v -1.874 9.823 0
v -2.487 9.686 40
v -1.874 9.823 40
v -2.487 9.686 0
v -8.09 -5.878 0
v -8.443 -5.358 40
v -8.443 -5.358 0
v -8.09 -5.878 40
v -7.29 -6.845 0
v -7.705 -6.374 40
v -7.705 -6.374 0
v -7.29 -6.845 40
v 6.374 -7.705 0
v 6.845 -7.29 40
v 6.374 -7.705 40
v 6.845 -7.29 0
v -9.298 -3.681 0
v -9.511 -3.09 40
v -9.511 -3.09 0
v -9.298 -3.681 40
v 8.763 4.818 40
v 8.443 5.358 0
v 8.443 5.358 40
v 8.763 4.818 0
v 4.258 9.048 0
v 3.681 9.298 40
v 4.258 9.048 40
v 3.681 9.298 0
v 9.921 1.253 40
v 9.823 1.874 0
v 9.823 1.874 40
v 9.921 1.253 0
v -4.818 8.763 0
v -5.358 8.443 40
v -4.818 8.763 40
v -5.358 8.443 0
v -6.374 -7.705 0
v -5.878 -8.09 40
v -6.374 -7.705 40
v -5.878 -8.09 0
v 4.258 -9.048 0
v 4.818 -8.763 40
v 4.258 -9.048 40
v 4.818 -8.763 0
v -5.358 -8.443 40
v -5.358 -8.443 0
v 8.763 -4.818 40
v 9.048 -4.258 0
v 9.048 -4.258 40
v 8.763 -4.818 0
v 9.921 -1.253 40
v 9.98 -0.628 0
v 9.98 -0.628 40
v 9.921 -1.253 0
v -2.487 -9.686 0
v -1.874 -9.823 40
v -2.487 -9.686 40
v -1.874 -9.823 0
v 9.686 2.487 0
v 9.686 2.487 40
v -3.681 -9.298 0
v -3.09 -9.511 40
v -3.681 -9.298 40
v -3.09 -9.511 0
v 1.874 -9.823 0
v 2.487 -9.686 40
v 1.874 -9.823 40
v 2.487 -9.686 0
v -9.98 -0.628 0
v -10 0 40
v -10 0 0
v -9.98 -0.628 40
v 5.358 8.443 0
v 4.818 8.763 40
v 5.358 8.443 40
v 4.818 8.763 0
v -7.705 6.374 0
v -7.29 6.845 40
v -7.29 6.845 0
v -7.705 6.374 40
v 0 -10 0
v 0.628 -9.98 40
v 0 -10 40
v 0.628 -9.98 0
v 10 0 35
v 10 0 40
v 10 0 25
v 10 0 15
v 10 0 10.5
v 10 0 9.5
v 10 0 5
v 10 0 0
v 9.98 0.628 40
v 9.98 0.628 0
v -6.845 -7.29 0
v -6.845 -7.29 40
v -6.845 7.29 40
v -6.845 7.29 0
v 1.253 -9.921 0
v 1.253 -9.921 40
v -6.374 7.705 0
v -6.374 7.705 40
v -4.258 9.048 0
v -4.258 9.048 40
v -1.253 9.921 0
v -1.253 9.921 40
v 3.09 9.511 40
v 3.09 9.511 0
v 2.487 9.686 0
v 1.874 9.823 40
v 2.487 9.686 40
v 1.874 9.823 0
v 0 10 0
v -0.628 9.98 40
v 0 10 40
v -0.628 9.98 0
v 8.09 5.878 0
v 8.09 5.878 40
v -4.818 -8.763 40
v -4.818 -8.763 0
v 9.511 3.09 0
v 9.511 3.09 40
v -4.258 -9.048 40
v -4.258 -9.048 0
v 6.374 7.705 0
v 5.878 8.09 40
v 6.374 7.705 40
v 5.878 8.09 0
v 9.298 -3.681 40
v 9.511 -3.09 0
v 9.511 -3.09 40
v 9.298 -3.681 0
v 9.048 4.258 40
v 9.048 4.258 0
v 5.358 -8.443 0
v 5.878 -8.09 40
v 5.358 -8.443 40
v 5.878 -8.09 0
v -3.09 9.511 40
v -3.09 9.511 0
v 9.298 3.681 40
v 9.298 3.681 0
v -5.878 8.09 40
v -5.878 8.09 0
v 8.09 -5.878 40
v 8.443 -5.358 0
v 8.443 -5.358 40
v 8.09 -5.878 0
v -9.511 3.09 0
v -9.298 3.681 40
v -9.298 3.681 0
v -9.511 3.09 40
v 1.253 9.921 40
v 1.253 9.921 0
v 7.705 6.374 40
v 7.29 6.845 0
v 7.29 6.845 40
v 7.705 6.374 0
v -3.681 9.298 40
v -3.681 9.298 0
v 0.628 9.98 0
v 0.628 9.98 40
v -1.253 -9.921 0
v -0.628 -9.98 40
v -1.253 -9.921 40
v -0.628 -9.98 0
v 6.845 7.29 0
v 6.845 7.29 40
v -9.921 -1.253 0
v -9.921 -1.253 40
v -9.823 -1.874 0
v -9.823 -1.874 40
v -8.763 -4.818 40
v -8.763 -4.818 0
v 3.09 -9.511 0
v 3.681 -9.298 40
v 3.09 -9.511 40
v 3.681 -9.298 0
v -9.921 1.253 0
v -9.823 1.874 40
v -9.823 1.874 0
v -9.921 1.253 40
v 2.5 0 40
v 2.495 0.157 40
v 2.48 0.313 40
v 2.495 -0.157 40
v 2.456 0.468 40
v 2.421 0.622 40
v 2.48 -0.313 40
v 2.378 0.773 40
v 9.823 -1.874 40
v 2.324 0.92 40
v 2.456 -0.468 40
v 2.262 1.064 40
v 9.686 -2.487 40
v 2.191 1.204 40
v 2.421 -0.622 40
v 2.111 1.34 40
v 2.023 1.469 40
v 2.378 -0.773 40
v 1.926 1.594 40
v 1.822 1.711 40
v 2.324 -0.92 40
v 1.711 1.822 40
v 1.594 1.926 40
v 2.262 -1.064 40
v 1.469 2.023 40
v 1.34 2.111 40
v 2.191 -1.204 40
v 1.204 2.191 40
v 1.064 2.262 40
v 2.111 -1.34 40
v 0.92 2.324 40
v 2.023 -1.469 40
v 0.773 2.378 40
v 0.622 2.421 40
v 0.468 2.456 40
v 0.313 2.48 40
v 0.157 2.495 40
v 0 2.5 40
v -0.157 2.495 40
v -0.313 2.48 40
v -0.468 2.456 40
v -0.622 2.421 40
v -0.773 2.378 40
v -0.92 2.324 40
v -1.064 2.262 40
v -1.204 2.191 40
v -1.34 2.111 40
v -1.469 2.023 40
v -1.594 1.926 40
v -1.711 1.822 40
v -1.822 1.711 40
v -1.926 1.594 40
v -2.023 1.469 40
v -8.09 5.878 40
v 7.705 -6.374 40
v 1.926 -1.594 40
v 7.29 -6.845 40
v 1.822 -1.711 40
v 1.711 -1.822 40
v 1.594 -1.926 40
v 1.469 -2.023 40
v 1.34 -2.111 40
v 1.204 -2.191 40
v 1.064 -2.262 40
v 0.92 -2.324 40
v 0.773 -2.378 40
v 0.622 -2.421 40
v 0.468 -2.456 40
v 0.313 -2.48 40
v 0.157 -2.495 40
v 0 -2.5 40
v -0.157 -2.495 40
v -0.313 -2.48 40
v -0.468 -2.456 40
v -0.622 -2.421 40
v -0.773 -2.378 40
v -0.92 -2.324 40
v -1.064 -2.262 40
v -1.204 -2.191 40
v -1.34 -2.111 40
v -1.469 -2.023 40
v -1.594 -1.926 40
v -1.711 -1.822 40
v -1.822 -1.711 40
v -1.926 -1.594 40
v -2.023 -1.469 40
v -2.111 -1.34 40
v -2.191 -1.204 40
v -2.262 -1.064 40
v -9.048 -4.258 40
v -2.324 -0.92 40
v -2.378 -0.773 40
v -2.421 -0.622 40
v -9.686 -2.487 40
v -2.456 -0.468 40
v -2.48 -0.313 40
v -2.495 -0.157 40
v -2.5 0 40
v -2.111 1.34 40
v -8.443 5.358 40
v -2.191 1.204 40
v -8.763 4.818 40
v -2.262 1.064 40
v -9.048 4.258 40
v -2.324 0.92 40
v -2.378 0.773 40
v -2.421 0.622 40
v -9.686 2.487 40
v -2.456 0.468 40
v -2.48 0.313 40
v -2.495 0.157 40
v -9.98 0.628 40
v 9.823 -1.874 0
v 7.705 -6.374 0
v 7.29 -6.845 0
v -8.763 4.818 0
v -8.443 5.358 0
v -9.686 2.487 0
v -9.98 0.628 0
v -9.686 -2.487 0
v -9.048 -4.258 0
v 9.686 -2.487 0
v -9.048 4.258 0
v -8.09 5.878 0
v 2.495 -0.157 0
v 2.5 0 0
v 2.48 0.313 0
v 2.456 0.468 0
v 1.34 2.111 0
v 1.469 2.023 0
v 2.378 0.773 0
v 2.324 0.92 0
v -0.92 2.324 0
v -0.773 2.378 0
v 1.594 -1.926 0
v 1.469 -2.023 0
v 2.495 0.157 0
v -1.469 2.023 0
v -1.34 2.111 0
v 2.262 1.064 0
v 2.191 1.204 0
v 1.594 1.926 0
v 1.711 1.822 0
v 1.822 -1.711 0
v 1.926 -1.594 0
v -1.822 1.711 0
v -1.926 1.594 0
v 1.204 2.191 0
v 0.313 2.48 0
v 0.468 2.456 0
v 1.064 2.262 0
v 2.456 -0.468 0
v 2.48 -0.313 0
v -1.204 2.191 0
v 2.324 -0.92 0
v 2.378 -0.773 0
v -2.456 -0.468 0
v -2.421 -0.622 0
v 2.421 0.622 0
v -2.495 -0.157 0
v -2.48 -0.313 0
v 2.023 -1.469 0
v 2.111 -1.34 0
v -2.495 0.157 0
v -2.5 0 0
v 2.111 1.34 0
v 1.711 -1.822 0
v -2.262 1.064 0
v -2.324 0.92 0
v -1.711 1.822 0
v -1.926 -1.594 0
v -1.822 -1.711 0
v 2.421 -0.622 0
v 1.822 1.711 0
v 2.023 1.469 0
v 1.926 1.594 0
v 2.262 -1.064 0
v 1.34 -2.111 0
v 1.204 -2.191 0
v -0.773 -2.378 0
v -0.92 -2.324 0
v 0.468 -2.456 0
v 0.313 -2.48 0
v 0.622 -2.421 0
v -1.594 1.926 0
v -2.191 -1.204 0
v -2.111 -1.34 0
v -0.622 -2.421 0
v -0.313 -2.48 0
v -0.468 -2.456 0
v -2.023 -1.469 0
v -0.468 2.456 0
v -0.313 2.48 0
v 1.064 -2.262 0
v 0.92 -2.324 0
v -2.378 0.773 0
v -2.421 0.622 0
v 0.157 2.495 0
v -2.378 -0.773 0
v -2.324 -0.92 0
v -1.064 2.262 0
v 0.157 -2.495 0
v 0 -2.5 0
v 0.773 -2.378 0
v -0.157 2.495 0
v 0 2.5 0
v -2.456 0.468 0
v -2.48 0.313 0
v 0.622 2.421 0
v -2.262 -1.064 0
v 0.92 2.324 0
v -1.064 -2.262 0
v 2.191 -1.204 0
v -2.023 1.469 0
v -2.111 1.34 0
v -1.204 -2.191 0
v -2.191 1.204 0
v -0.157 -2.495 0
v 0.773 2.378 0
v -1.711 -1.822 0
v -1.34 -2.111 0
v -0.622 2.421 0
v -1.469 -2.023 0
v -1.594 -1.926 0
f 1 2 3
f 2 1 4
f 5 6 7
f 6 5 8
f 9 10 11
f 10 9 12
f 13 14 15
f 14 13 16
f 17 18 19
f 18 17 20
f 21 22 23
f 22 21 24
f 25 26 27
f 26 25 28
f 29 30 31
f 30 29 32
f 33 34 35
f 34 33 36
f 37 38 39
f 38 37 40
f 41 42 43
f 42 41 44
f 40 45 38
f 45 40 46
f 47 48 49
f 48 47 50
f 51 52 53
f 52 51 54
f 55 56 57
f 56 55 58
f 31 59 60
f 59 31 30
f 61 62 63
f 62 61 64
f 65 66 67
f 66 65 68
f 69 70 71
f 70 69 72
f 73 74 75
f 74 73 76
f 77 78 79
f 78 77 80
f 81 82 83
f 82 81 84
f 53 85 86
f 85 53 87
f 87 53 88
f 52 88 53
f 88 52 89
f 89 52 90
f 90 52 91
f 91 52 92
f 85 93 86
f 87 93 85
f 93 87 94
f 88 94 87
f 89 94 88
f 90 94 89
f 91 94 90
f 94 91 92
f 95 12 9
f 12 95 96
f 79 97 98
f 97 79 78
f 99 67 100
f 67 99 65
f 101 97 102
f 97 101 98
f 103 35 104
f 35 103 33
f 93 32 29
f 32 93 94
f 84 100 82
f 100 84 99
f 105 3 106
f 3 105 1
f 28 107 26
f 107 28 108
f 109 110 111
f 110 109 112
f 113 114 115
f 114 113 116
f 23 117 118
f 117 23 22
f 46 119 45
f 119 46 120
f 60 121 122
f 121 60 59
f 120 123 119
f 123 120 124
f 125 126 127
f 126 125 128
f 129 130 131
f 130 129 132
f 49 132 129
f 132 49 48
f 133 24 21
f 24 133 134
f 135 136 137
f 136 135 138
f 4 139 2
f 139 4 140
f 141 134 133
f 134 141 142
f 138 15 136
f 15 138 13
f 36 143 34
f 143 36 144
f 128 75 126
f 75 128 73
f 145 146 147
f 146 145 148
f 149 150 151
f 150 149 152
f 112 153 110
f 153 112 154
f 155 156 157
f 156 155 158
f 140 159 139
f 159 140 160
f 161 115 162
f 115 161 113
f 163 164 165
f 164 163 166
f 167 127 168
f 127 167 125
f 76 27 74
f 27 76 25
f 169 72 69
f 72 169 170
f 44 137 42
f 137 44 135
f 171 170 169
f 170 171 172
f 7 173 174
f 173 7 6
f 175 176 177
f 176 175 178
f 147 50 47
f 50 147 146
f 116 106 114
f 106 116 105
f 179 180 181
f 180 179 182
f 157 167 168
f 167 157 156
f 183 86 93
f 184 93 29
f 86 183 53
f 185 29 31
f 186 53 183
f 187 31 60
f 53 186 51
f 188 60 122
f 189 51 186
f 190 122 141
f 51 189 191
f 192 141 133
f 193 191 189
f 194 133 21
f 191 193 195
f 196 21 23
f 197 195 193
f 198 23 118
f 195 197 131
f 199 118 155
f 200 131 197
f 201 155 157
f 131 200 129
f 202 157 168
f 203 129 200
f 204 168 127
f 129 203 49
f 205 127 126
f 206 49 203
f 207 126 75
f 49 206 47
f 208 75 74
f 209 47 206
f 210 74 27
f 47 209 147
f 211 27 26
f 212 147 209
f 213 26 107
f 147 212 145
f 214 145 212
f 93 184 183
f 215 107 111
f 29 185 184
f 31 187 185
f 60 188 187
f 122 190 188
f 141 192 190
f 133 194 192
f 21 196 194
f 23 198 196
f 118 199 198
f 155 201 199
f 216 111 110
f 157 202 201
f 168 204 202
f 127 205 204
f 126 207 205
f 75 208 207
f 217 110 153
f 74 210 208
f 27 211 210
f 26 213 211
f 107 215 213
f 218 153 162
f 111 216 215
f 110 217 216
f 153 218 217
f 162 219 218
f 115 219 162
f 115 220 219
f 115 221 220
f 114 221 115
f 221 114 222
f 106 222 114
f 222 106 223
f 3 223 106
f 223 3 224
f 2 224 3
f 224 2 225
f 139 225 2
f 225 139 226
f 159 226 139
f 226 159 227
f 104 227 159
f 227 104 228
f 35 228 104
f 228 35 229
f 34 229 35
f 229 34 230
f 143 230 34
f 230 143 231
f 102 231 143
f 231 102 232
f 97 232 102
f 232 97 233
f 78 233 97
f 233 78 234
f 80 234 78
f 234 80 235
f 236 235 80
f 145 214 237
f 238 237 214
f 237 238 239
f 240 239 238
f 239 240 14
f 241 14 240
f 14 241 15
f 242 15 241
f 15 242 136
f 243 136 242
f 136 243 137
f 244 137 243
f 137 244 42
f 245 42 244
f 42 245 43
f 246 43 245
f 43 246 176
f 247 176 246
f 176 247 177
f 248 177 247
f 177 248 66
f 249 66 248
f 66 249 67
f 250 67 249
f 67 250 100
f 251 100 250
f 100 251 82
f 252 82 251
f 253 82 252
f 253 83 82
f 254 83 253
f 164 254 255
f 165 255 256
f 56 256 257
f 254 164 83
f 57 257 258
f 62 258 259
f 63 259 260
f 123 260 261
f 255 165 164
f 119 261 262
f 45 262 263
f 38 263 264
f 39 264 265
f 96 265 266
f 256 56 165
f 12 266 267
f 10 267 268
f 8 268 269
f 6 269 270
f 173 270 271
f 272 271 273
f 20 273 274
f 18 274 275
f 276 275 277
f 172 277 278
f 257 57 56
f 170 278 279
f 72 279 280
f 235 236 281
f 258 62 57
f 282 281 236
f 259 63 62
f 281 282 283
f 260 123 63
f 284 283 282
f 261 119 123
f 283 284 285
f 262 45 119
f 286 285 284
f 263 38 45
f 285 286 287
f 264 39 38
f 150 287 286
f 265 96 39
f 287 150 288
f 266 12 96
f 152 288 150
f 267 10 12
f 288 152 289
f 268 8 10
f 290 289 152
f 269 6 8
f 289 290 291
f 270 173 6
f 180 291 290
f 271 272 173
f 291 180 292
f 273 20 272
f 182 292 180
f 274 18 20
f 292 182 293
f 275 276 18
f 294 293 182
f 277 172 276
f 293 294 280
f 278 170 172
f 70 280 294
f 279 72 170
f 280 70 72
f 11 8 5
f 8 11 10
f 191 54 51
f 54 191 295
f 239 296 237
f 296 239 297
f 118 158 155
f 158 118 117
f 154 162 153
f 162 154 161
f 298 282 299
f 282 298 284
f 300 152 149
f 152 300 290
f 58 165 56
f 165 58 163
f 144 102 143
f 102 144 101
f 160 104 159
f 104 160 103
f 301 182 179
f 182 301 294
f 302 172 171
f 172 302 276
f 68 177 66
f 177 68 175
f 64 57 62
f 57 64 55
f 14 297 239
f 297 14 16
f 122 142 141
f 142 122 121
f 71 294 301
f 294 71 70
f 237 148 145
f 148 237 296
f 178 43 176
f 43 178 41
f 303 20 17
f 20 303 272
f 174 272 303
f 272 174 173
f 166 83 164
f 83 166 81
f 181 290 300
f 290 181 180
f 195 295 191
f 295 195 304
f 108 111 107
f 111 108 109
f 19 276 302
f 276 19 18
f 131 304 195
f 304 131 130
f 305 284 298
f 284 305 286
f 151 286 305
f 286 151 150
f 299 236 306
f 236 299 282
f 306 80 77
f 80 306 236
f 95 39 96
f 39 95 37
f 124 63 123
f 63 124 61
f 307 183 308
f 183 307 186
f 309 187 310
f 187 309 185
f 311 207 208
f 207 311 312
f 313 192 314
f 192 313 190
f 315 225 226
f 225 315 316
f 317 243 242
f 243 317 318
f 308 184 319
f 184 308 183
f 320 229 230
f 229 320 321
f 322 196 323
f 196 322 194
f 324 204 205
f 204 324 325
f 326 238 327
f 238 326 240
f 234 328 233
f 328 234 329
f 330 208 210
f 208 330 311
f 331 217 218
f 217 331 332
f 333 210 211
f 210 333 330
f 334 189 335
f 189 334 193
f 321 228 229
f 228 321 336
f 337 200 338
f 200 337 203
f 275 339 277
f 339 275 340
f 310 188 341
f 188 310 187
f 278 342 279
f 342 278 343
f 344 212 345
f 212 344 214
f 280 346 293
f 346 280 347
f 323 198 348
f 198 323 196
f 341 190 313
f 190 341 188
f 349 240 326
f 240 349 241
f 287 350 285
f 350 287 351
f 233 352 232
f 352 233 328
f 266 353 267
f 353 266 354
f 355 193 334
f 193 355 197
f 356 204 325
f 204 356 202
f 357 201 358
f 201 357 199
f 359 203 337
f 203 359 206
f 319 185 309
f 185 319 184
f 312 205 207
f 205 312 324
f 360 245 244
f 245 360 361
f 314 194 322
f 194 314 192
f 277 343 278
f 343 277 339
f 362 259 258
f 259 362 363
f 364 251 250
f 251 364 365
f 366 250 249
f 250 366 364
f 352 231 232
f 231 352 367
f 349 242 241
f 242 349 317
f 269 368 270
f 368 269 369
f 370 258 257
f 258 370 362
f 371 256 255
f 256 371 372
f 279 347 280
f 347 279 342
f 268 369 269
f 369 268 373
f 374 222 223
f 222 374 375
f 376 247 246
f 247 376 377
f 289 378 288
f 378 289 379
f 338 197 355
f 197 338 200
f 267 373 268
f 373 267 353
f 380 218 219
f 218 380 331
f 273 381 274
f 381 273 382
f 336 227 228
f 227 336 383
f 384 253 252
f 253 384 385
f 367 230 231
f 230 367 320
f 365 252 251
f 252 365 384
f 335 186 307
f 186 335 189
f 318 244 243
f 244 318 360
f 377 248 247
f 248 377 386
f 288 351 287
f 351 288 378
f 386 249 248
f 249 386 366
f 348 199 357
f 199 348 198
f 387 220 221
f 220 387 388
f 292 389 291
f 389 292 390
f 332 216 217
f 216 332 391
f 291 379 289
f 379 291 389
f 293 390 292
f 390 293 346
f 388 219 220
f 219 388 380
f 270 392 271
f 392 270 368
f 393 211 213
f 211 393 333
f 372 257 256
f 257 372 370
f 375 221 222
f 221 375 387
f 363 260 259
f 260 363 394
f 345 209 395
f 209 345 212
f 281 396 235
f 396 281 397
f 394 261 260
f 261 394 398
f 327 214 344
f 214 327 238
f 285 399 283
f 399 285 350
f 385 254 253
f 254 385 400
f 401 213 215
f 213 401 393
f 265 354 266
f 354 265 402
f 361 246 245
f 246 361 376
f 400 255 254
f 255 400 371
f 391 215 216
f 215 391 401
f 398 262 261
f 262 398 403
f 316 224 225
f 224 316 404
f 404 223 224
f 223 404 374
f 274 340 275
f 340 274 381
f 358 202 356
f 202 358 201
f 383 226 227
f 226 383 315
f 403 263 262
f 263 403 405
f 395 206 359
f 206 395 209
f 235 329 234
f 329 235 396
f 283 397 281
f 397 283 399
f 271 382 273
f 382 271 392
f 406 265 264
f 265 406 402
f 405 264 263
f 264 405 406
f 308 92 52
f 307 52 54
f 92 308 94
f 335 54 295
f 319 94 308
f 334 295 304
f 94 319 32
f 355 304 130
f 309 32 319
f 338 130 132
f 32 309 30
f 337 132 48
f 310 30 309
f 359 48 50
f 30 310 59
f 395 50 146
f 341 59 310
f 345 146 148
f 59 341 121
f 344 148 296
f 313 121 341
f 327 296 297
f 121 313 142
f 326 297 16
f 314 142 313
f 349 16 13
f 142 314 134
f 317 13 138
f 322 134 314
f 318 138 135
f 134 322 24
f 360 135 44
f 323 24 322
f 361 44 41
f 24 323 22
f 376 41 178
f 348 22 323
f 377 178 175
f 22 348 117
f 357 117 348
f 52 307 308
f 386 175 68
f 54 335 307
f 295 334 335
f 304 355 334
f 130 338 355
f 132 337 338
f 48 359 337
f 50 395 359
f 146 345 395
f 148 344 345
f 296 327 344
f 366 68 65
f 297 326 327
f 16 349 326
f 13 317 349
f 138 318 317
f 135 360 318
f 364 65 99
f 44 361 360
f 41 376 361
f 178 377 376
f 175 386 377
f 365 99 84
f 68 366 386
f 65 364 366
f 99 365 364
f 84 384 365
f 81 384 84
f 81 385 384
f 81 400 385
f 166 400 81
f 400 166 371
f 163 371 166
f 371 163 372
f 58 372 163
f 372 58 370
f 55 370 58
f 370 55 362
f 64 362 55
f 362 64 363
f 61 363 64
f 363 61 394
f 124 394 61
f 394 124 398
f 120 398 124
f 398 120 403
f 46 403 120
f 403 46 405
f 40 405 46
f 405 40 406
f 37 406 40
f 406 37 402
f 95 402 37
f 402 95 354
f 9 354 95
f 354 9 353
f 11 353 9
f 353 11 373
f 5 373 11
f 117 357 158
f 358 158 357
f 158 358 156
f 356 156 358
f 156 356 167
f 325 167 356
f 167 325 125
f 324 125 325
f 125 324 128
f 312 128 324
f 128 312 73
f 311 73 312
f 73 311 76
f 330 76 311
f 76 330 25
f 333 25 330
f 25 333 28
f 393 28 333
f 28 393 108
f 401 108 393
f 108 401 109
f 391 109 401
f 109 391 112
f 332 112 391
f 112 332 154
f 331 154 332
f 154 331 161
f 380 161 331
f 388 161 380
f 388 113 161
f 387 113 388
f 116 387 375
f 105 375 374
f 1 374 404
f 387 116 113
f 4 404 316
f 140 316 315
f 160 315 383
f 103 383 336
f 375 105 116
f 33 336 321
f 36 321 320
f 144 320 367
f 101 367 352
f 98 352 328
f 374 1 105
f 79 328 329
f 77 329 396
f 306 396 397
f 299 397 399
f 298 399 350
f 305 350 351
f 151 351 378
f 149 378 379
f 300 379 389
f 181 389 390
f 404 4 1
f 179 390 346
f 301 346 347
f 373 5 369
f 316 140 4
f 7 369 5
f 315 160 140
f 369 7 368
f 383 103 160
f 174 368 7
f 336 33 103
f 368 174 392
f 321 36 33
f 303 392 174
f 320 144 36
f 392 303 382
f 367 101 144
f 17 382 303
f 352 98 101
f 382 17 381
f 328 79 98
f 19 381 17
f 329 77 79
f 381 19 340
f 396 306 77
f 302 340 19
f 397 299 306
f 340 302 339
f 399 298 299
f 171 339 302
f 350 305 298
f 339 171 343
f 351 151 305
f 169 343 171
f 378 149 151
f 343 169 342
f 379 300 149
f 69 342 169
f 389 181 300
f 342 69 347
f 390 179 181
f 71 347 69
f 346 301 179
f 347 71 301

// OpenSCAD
// Define dimensions
cylinder_diameter = 20;
cylinder_height = 20;
hole_diameter = 5;
groove_width = 2;
groove_depth = 4;
spacer_thickness = 1;

// Cylinder Body
module cylinder_body() {
    difference() {
        cylinder(d=cylinder_diameter, h=cylinder_height, $fn=100);
        cylinder(d=hole_diameter, h=cylinder_height, $fn=100);
        
        // Adding grooves
        for (i = [-120, 0, 120]) {
            rotate([0, 0, i]) {
                translate([cylinder_diameter/2, -groove_width/2, cylinder_height / 4]) {
                    cube([groove_depth, groove_width, cylinder_height / 2], center=false);
                }
            }
        }
    }
}

// Internal Spacer
module internal_spacer() {
    difference() {
        cylinder(d=cylinder_diameter, h=spacer_thickness, $fn=100);
        cylinder(d=hole_diameter, h=spacer_thickness, $fn=100);
    }
}

// Assembly
module assembly() {
    translate([0, 0, cylinder_height]) {
        cylinder_body();
    }
    translate([0, 0, (cylinder_height - spacer_thickness) / 2]) {
        internal_spacer();
    }
    translate([0, 0, 0]) {
        cylinder_body();
    }
}

// Main Module
assembly();
